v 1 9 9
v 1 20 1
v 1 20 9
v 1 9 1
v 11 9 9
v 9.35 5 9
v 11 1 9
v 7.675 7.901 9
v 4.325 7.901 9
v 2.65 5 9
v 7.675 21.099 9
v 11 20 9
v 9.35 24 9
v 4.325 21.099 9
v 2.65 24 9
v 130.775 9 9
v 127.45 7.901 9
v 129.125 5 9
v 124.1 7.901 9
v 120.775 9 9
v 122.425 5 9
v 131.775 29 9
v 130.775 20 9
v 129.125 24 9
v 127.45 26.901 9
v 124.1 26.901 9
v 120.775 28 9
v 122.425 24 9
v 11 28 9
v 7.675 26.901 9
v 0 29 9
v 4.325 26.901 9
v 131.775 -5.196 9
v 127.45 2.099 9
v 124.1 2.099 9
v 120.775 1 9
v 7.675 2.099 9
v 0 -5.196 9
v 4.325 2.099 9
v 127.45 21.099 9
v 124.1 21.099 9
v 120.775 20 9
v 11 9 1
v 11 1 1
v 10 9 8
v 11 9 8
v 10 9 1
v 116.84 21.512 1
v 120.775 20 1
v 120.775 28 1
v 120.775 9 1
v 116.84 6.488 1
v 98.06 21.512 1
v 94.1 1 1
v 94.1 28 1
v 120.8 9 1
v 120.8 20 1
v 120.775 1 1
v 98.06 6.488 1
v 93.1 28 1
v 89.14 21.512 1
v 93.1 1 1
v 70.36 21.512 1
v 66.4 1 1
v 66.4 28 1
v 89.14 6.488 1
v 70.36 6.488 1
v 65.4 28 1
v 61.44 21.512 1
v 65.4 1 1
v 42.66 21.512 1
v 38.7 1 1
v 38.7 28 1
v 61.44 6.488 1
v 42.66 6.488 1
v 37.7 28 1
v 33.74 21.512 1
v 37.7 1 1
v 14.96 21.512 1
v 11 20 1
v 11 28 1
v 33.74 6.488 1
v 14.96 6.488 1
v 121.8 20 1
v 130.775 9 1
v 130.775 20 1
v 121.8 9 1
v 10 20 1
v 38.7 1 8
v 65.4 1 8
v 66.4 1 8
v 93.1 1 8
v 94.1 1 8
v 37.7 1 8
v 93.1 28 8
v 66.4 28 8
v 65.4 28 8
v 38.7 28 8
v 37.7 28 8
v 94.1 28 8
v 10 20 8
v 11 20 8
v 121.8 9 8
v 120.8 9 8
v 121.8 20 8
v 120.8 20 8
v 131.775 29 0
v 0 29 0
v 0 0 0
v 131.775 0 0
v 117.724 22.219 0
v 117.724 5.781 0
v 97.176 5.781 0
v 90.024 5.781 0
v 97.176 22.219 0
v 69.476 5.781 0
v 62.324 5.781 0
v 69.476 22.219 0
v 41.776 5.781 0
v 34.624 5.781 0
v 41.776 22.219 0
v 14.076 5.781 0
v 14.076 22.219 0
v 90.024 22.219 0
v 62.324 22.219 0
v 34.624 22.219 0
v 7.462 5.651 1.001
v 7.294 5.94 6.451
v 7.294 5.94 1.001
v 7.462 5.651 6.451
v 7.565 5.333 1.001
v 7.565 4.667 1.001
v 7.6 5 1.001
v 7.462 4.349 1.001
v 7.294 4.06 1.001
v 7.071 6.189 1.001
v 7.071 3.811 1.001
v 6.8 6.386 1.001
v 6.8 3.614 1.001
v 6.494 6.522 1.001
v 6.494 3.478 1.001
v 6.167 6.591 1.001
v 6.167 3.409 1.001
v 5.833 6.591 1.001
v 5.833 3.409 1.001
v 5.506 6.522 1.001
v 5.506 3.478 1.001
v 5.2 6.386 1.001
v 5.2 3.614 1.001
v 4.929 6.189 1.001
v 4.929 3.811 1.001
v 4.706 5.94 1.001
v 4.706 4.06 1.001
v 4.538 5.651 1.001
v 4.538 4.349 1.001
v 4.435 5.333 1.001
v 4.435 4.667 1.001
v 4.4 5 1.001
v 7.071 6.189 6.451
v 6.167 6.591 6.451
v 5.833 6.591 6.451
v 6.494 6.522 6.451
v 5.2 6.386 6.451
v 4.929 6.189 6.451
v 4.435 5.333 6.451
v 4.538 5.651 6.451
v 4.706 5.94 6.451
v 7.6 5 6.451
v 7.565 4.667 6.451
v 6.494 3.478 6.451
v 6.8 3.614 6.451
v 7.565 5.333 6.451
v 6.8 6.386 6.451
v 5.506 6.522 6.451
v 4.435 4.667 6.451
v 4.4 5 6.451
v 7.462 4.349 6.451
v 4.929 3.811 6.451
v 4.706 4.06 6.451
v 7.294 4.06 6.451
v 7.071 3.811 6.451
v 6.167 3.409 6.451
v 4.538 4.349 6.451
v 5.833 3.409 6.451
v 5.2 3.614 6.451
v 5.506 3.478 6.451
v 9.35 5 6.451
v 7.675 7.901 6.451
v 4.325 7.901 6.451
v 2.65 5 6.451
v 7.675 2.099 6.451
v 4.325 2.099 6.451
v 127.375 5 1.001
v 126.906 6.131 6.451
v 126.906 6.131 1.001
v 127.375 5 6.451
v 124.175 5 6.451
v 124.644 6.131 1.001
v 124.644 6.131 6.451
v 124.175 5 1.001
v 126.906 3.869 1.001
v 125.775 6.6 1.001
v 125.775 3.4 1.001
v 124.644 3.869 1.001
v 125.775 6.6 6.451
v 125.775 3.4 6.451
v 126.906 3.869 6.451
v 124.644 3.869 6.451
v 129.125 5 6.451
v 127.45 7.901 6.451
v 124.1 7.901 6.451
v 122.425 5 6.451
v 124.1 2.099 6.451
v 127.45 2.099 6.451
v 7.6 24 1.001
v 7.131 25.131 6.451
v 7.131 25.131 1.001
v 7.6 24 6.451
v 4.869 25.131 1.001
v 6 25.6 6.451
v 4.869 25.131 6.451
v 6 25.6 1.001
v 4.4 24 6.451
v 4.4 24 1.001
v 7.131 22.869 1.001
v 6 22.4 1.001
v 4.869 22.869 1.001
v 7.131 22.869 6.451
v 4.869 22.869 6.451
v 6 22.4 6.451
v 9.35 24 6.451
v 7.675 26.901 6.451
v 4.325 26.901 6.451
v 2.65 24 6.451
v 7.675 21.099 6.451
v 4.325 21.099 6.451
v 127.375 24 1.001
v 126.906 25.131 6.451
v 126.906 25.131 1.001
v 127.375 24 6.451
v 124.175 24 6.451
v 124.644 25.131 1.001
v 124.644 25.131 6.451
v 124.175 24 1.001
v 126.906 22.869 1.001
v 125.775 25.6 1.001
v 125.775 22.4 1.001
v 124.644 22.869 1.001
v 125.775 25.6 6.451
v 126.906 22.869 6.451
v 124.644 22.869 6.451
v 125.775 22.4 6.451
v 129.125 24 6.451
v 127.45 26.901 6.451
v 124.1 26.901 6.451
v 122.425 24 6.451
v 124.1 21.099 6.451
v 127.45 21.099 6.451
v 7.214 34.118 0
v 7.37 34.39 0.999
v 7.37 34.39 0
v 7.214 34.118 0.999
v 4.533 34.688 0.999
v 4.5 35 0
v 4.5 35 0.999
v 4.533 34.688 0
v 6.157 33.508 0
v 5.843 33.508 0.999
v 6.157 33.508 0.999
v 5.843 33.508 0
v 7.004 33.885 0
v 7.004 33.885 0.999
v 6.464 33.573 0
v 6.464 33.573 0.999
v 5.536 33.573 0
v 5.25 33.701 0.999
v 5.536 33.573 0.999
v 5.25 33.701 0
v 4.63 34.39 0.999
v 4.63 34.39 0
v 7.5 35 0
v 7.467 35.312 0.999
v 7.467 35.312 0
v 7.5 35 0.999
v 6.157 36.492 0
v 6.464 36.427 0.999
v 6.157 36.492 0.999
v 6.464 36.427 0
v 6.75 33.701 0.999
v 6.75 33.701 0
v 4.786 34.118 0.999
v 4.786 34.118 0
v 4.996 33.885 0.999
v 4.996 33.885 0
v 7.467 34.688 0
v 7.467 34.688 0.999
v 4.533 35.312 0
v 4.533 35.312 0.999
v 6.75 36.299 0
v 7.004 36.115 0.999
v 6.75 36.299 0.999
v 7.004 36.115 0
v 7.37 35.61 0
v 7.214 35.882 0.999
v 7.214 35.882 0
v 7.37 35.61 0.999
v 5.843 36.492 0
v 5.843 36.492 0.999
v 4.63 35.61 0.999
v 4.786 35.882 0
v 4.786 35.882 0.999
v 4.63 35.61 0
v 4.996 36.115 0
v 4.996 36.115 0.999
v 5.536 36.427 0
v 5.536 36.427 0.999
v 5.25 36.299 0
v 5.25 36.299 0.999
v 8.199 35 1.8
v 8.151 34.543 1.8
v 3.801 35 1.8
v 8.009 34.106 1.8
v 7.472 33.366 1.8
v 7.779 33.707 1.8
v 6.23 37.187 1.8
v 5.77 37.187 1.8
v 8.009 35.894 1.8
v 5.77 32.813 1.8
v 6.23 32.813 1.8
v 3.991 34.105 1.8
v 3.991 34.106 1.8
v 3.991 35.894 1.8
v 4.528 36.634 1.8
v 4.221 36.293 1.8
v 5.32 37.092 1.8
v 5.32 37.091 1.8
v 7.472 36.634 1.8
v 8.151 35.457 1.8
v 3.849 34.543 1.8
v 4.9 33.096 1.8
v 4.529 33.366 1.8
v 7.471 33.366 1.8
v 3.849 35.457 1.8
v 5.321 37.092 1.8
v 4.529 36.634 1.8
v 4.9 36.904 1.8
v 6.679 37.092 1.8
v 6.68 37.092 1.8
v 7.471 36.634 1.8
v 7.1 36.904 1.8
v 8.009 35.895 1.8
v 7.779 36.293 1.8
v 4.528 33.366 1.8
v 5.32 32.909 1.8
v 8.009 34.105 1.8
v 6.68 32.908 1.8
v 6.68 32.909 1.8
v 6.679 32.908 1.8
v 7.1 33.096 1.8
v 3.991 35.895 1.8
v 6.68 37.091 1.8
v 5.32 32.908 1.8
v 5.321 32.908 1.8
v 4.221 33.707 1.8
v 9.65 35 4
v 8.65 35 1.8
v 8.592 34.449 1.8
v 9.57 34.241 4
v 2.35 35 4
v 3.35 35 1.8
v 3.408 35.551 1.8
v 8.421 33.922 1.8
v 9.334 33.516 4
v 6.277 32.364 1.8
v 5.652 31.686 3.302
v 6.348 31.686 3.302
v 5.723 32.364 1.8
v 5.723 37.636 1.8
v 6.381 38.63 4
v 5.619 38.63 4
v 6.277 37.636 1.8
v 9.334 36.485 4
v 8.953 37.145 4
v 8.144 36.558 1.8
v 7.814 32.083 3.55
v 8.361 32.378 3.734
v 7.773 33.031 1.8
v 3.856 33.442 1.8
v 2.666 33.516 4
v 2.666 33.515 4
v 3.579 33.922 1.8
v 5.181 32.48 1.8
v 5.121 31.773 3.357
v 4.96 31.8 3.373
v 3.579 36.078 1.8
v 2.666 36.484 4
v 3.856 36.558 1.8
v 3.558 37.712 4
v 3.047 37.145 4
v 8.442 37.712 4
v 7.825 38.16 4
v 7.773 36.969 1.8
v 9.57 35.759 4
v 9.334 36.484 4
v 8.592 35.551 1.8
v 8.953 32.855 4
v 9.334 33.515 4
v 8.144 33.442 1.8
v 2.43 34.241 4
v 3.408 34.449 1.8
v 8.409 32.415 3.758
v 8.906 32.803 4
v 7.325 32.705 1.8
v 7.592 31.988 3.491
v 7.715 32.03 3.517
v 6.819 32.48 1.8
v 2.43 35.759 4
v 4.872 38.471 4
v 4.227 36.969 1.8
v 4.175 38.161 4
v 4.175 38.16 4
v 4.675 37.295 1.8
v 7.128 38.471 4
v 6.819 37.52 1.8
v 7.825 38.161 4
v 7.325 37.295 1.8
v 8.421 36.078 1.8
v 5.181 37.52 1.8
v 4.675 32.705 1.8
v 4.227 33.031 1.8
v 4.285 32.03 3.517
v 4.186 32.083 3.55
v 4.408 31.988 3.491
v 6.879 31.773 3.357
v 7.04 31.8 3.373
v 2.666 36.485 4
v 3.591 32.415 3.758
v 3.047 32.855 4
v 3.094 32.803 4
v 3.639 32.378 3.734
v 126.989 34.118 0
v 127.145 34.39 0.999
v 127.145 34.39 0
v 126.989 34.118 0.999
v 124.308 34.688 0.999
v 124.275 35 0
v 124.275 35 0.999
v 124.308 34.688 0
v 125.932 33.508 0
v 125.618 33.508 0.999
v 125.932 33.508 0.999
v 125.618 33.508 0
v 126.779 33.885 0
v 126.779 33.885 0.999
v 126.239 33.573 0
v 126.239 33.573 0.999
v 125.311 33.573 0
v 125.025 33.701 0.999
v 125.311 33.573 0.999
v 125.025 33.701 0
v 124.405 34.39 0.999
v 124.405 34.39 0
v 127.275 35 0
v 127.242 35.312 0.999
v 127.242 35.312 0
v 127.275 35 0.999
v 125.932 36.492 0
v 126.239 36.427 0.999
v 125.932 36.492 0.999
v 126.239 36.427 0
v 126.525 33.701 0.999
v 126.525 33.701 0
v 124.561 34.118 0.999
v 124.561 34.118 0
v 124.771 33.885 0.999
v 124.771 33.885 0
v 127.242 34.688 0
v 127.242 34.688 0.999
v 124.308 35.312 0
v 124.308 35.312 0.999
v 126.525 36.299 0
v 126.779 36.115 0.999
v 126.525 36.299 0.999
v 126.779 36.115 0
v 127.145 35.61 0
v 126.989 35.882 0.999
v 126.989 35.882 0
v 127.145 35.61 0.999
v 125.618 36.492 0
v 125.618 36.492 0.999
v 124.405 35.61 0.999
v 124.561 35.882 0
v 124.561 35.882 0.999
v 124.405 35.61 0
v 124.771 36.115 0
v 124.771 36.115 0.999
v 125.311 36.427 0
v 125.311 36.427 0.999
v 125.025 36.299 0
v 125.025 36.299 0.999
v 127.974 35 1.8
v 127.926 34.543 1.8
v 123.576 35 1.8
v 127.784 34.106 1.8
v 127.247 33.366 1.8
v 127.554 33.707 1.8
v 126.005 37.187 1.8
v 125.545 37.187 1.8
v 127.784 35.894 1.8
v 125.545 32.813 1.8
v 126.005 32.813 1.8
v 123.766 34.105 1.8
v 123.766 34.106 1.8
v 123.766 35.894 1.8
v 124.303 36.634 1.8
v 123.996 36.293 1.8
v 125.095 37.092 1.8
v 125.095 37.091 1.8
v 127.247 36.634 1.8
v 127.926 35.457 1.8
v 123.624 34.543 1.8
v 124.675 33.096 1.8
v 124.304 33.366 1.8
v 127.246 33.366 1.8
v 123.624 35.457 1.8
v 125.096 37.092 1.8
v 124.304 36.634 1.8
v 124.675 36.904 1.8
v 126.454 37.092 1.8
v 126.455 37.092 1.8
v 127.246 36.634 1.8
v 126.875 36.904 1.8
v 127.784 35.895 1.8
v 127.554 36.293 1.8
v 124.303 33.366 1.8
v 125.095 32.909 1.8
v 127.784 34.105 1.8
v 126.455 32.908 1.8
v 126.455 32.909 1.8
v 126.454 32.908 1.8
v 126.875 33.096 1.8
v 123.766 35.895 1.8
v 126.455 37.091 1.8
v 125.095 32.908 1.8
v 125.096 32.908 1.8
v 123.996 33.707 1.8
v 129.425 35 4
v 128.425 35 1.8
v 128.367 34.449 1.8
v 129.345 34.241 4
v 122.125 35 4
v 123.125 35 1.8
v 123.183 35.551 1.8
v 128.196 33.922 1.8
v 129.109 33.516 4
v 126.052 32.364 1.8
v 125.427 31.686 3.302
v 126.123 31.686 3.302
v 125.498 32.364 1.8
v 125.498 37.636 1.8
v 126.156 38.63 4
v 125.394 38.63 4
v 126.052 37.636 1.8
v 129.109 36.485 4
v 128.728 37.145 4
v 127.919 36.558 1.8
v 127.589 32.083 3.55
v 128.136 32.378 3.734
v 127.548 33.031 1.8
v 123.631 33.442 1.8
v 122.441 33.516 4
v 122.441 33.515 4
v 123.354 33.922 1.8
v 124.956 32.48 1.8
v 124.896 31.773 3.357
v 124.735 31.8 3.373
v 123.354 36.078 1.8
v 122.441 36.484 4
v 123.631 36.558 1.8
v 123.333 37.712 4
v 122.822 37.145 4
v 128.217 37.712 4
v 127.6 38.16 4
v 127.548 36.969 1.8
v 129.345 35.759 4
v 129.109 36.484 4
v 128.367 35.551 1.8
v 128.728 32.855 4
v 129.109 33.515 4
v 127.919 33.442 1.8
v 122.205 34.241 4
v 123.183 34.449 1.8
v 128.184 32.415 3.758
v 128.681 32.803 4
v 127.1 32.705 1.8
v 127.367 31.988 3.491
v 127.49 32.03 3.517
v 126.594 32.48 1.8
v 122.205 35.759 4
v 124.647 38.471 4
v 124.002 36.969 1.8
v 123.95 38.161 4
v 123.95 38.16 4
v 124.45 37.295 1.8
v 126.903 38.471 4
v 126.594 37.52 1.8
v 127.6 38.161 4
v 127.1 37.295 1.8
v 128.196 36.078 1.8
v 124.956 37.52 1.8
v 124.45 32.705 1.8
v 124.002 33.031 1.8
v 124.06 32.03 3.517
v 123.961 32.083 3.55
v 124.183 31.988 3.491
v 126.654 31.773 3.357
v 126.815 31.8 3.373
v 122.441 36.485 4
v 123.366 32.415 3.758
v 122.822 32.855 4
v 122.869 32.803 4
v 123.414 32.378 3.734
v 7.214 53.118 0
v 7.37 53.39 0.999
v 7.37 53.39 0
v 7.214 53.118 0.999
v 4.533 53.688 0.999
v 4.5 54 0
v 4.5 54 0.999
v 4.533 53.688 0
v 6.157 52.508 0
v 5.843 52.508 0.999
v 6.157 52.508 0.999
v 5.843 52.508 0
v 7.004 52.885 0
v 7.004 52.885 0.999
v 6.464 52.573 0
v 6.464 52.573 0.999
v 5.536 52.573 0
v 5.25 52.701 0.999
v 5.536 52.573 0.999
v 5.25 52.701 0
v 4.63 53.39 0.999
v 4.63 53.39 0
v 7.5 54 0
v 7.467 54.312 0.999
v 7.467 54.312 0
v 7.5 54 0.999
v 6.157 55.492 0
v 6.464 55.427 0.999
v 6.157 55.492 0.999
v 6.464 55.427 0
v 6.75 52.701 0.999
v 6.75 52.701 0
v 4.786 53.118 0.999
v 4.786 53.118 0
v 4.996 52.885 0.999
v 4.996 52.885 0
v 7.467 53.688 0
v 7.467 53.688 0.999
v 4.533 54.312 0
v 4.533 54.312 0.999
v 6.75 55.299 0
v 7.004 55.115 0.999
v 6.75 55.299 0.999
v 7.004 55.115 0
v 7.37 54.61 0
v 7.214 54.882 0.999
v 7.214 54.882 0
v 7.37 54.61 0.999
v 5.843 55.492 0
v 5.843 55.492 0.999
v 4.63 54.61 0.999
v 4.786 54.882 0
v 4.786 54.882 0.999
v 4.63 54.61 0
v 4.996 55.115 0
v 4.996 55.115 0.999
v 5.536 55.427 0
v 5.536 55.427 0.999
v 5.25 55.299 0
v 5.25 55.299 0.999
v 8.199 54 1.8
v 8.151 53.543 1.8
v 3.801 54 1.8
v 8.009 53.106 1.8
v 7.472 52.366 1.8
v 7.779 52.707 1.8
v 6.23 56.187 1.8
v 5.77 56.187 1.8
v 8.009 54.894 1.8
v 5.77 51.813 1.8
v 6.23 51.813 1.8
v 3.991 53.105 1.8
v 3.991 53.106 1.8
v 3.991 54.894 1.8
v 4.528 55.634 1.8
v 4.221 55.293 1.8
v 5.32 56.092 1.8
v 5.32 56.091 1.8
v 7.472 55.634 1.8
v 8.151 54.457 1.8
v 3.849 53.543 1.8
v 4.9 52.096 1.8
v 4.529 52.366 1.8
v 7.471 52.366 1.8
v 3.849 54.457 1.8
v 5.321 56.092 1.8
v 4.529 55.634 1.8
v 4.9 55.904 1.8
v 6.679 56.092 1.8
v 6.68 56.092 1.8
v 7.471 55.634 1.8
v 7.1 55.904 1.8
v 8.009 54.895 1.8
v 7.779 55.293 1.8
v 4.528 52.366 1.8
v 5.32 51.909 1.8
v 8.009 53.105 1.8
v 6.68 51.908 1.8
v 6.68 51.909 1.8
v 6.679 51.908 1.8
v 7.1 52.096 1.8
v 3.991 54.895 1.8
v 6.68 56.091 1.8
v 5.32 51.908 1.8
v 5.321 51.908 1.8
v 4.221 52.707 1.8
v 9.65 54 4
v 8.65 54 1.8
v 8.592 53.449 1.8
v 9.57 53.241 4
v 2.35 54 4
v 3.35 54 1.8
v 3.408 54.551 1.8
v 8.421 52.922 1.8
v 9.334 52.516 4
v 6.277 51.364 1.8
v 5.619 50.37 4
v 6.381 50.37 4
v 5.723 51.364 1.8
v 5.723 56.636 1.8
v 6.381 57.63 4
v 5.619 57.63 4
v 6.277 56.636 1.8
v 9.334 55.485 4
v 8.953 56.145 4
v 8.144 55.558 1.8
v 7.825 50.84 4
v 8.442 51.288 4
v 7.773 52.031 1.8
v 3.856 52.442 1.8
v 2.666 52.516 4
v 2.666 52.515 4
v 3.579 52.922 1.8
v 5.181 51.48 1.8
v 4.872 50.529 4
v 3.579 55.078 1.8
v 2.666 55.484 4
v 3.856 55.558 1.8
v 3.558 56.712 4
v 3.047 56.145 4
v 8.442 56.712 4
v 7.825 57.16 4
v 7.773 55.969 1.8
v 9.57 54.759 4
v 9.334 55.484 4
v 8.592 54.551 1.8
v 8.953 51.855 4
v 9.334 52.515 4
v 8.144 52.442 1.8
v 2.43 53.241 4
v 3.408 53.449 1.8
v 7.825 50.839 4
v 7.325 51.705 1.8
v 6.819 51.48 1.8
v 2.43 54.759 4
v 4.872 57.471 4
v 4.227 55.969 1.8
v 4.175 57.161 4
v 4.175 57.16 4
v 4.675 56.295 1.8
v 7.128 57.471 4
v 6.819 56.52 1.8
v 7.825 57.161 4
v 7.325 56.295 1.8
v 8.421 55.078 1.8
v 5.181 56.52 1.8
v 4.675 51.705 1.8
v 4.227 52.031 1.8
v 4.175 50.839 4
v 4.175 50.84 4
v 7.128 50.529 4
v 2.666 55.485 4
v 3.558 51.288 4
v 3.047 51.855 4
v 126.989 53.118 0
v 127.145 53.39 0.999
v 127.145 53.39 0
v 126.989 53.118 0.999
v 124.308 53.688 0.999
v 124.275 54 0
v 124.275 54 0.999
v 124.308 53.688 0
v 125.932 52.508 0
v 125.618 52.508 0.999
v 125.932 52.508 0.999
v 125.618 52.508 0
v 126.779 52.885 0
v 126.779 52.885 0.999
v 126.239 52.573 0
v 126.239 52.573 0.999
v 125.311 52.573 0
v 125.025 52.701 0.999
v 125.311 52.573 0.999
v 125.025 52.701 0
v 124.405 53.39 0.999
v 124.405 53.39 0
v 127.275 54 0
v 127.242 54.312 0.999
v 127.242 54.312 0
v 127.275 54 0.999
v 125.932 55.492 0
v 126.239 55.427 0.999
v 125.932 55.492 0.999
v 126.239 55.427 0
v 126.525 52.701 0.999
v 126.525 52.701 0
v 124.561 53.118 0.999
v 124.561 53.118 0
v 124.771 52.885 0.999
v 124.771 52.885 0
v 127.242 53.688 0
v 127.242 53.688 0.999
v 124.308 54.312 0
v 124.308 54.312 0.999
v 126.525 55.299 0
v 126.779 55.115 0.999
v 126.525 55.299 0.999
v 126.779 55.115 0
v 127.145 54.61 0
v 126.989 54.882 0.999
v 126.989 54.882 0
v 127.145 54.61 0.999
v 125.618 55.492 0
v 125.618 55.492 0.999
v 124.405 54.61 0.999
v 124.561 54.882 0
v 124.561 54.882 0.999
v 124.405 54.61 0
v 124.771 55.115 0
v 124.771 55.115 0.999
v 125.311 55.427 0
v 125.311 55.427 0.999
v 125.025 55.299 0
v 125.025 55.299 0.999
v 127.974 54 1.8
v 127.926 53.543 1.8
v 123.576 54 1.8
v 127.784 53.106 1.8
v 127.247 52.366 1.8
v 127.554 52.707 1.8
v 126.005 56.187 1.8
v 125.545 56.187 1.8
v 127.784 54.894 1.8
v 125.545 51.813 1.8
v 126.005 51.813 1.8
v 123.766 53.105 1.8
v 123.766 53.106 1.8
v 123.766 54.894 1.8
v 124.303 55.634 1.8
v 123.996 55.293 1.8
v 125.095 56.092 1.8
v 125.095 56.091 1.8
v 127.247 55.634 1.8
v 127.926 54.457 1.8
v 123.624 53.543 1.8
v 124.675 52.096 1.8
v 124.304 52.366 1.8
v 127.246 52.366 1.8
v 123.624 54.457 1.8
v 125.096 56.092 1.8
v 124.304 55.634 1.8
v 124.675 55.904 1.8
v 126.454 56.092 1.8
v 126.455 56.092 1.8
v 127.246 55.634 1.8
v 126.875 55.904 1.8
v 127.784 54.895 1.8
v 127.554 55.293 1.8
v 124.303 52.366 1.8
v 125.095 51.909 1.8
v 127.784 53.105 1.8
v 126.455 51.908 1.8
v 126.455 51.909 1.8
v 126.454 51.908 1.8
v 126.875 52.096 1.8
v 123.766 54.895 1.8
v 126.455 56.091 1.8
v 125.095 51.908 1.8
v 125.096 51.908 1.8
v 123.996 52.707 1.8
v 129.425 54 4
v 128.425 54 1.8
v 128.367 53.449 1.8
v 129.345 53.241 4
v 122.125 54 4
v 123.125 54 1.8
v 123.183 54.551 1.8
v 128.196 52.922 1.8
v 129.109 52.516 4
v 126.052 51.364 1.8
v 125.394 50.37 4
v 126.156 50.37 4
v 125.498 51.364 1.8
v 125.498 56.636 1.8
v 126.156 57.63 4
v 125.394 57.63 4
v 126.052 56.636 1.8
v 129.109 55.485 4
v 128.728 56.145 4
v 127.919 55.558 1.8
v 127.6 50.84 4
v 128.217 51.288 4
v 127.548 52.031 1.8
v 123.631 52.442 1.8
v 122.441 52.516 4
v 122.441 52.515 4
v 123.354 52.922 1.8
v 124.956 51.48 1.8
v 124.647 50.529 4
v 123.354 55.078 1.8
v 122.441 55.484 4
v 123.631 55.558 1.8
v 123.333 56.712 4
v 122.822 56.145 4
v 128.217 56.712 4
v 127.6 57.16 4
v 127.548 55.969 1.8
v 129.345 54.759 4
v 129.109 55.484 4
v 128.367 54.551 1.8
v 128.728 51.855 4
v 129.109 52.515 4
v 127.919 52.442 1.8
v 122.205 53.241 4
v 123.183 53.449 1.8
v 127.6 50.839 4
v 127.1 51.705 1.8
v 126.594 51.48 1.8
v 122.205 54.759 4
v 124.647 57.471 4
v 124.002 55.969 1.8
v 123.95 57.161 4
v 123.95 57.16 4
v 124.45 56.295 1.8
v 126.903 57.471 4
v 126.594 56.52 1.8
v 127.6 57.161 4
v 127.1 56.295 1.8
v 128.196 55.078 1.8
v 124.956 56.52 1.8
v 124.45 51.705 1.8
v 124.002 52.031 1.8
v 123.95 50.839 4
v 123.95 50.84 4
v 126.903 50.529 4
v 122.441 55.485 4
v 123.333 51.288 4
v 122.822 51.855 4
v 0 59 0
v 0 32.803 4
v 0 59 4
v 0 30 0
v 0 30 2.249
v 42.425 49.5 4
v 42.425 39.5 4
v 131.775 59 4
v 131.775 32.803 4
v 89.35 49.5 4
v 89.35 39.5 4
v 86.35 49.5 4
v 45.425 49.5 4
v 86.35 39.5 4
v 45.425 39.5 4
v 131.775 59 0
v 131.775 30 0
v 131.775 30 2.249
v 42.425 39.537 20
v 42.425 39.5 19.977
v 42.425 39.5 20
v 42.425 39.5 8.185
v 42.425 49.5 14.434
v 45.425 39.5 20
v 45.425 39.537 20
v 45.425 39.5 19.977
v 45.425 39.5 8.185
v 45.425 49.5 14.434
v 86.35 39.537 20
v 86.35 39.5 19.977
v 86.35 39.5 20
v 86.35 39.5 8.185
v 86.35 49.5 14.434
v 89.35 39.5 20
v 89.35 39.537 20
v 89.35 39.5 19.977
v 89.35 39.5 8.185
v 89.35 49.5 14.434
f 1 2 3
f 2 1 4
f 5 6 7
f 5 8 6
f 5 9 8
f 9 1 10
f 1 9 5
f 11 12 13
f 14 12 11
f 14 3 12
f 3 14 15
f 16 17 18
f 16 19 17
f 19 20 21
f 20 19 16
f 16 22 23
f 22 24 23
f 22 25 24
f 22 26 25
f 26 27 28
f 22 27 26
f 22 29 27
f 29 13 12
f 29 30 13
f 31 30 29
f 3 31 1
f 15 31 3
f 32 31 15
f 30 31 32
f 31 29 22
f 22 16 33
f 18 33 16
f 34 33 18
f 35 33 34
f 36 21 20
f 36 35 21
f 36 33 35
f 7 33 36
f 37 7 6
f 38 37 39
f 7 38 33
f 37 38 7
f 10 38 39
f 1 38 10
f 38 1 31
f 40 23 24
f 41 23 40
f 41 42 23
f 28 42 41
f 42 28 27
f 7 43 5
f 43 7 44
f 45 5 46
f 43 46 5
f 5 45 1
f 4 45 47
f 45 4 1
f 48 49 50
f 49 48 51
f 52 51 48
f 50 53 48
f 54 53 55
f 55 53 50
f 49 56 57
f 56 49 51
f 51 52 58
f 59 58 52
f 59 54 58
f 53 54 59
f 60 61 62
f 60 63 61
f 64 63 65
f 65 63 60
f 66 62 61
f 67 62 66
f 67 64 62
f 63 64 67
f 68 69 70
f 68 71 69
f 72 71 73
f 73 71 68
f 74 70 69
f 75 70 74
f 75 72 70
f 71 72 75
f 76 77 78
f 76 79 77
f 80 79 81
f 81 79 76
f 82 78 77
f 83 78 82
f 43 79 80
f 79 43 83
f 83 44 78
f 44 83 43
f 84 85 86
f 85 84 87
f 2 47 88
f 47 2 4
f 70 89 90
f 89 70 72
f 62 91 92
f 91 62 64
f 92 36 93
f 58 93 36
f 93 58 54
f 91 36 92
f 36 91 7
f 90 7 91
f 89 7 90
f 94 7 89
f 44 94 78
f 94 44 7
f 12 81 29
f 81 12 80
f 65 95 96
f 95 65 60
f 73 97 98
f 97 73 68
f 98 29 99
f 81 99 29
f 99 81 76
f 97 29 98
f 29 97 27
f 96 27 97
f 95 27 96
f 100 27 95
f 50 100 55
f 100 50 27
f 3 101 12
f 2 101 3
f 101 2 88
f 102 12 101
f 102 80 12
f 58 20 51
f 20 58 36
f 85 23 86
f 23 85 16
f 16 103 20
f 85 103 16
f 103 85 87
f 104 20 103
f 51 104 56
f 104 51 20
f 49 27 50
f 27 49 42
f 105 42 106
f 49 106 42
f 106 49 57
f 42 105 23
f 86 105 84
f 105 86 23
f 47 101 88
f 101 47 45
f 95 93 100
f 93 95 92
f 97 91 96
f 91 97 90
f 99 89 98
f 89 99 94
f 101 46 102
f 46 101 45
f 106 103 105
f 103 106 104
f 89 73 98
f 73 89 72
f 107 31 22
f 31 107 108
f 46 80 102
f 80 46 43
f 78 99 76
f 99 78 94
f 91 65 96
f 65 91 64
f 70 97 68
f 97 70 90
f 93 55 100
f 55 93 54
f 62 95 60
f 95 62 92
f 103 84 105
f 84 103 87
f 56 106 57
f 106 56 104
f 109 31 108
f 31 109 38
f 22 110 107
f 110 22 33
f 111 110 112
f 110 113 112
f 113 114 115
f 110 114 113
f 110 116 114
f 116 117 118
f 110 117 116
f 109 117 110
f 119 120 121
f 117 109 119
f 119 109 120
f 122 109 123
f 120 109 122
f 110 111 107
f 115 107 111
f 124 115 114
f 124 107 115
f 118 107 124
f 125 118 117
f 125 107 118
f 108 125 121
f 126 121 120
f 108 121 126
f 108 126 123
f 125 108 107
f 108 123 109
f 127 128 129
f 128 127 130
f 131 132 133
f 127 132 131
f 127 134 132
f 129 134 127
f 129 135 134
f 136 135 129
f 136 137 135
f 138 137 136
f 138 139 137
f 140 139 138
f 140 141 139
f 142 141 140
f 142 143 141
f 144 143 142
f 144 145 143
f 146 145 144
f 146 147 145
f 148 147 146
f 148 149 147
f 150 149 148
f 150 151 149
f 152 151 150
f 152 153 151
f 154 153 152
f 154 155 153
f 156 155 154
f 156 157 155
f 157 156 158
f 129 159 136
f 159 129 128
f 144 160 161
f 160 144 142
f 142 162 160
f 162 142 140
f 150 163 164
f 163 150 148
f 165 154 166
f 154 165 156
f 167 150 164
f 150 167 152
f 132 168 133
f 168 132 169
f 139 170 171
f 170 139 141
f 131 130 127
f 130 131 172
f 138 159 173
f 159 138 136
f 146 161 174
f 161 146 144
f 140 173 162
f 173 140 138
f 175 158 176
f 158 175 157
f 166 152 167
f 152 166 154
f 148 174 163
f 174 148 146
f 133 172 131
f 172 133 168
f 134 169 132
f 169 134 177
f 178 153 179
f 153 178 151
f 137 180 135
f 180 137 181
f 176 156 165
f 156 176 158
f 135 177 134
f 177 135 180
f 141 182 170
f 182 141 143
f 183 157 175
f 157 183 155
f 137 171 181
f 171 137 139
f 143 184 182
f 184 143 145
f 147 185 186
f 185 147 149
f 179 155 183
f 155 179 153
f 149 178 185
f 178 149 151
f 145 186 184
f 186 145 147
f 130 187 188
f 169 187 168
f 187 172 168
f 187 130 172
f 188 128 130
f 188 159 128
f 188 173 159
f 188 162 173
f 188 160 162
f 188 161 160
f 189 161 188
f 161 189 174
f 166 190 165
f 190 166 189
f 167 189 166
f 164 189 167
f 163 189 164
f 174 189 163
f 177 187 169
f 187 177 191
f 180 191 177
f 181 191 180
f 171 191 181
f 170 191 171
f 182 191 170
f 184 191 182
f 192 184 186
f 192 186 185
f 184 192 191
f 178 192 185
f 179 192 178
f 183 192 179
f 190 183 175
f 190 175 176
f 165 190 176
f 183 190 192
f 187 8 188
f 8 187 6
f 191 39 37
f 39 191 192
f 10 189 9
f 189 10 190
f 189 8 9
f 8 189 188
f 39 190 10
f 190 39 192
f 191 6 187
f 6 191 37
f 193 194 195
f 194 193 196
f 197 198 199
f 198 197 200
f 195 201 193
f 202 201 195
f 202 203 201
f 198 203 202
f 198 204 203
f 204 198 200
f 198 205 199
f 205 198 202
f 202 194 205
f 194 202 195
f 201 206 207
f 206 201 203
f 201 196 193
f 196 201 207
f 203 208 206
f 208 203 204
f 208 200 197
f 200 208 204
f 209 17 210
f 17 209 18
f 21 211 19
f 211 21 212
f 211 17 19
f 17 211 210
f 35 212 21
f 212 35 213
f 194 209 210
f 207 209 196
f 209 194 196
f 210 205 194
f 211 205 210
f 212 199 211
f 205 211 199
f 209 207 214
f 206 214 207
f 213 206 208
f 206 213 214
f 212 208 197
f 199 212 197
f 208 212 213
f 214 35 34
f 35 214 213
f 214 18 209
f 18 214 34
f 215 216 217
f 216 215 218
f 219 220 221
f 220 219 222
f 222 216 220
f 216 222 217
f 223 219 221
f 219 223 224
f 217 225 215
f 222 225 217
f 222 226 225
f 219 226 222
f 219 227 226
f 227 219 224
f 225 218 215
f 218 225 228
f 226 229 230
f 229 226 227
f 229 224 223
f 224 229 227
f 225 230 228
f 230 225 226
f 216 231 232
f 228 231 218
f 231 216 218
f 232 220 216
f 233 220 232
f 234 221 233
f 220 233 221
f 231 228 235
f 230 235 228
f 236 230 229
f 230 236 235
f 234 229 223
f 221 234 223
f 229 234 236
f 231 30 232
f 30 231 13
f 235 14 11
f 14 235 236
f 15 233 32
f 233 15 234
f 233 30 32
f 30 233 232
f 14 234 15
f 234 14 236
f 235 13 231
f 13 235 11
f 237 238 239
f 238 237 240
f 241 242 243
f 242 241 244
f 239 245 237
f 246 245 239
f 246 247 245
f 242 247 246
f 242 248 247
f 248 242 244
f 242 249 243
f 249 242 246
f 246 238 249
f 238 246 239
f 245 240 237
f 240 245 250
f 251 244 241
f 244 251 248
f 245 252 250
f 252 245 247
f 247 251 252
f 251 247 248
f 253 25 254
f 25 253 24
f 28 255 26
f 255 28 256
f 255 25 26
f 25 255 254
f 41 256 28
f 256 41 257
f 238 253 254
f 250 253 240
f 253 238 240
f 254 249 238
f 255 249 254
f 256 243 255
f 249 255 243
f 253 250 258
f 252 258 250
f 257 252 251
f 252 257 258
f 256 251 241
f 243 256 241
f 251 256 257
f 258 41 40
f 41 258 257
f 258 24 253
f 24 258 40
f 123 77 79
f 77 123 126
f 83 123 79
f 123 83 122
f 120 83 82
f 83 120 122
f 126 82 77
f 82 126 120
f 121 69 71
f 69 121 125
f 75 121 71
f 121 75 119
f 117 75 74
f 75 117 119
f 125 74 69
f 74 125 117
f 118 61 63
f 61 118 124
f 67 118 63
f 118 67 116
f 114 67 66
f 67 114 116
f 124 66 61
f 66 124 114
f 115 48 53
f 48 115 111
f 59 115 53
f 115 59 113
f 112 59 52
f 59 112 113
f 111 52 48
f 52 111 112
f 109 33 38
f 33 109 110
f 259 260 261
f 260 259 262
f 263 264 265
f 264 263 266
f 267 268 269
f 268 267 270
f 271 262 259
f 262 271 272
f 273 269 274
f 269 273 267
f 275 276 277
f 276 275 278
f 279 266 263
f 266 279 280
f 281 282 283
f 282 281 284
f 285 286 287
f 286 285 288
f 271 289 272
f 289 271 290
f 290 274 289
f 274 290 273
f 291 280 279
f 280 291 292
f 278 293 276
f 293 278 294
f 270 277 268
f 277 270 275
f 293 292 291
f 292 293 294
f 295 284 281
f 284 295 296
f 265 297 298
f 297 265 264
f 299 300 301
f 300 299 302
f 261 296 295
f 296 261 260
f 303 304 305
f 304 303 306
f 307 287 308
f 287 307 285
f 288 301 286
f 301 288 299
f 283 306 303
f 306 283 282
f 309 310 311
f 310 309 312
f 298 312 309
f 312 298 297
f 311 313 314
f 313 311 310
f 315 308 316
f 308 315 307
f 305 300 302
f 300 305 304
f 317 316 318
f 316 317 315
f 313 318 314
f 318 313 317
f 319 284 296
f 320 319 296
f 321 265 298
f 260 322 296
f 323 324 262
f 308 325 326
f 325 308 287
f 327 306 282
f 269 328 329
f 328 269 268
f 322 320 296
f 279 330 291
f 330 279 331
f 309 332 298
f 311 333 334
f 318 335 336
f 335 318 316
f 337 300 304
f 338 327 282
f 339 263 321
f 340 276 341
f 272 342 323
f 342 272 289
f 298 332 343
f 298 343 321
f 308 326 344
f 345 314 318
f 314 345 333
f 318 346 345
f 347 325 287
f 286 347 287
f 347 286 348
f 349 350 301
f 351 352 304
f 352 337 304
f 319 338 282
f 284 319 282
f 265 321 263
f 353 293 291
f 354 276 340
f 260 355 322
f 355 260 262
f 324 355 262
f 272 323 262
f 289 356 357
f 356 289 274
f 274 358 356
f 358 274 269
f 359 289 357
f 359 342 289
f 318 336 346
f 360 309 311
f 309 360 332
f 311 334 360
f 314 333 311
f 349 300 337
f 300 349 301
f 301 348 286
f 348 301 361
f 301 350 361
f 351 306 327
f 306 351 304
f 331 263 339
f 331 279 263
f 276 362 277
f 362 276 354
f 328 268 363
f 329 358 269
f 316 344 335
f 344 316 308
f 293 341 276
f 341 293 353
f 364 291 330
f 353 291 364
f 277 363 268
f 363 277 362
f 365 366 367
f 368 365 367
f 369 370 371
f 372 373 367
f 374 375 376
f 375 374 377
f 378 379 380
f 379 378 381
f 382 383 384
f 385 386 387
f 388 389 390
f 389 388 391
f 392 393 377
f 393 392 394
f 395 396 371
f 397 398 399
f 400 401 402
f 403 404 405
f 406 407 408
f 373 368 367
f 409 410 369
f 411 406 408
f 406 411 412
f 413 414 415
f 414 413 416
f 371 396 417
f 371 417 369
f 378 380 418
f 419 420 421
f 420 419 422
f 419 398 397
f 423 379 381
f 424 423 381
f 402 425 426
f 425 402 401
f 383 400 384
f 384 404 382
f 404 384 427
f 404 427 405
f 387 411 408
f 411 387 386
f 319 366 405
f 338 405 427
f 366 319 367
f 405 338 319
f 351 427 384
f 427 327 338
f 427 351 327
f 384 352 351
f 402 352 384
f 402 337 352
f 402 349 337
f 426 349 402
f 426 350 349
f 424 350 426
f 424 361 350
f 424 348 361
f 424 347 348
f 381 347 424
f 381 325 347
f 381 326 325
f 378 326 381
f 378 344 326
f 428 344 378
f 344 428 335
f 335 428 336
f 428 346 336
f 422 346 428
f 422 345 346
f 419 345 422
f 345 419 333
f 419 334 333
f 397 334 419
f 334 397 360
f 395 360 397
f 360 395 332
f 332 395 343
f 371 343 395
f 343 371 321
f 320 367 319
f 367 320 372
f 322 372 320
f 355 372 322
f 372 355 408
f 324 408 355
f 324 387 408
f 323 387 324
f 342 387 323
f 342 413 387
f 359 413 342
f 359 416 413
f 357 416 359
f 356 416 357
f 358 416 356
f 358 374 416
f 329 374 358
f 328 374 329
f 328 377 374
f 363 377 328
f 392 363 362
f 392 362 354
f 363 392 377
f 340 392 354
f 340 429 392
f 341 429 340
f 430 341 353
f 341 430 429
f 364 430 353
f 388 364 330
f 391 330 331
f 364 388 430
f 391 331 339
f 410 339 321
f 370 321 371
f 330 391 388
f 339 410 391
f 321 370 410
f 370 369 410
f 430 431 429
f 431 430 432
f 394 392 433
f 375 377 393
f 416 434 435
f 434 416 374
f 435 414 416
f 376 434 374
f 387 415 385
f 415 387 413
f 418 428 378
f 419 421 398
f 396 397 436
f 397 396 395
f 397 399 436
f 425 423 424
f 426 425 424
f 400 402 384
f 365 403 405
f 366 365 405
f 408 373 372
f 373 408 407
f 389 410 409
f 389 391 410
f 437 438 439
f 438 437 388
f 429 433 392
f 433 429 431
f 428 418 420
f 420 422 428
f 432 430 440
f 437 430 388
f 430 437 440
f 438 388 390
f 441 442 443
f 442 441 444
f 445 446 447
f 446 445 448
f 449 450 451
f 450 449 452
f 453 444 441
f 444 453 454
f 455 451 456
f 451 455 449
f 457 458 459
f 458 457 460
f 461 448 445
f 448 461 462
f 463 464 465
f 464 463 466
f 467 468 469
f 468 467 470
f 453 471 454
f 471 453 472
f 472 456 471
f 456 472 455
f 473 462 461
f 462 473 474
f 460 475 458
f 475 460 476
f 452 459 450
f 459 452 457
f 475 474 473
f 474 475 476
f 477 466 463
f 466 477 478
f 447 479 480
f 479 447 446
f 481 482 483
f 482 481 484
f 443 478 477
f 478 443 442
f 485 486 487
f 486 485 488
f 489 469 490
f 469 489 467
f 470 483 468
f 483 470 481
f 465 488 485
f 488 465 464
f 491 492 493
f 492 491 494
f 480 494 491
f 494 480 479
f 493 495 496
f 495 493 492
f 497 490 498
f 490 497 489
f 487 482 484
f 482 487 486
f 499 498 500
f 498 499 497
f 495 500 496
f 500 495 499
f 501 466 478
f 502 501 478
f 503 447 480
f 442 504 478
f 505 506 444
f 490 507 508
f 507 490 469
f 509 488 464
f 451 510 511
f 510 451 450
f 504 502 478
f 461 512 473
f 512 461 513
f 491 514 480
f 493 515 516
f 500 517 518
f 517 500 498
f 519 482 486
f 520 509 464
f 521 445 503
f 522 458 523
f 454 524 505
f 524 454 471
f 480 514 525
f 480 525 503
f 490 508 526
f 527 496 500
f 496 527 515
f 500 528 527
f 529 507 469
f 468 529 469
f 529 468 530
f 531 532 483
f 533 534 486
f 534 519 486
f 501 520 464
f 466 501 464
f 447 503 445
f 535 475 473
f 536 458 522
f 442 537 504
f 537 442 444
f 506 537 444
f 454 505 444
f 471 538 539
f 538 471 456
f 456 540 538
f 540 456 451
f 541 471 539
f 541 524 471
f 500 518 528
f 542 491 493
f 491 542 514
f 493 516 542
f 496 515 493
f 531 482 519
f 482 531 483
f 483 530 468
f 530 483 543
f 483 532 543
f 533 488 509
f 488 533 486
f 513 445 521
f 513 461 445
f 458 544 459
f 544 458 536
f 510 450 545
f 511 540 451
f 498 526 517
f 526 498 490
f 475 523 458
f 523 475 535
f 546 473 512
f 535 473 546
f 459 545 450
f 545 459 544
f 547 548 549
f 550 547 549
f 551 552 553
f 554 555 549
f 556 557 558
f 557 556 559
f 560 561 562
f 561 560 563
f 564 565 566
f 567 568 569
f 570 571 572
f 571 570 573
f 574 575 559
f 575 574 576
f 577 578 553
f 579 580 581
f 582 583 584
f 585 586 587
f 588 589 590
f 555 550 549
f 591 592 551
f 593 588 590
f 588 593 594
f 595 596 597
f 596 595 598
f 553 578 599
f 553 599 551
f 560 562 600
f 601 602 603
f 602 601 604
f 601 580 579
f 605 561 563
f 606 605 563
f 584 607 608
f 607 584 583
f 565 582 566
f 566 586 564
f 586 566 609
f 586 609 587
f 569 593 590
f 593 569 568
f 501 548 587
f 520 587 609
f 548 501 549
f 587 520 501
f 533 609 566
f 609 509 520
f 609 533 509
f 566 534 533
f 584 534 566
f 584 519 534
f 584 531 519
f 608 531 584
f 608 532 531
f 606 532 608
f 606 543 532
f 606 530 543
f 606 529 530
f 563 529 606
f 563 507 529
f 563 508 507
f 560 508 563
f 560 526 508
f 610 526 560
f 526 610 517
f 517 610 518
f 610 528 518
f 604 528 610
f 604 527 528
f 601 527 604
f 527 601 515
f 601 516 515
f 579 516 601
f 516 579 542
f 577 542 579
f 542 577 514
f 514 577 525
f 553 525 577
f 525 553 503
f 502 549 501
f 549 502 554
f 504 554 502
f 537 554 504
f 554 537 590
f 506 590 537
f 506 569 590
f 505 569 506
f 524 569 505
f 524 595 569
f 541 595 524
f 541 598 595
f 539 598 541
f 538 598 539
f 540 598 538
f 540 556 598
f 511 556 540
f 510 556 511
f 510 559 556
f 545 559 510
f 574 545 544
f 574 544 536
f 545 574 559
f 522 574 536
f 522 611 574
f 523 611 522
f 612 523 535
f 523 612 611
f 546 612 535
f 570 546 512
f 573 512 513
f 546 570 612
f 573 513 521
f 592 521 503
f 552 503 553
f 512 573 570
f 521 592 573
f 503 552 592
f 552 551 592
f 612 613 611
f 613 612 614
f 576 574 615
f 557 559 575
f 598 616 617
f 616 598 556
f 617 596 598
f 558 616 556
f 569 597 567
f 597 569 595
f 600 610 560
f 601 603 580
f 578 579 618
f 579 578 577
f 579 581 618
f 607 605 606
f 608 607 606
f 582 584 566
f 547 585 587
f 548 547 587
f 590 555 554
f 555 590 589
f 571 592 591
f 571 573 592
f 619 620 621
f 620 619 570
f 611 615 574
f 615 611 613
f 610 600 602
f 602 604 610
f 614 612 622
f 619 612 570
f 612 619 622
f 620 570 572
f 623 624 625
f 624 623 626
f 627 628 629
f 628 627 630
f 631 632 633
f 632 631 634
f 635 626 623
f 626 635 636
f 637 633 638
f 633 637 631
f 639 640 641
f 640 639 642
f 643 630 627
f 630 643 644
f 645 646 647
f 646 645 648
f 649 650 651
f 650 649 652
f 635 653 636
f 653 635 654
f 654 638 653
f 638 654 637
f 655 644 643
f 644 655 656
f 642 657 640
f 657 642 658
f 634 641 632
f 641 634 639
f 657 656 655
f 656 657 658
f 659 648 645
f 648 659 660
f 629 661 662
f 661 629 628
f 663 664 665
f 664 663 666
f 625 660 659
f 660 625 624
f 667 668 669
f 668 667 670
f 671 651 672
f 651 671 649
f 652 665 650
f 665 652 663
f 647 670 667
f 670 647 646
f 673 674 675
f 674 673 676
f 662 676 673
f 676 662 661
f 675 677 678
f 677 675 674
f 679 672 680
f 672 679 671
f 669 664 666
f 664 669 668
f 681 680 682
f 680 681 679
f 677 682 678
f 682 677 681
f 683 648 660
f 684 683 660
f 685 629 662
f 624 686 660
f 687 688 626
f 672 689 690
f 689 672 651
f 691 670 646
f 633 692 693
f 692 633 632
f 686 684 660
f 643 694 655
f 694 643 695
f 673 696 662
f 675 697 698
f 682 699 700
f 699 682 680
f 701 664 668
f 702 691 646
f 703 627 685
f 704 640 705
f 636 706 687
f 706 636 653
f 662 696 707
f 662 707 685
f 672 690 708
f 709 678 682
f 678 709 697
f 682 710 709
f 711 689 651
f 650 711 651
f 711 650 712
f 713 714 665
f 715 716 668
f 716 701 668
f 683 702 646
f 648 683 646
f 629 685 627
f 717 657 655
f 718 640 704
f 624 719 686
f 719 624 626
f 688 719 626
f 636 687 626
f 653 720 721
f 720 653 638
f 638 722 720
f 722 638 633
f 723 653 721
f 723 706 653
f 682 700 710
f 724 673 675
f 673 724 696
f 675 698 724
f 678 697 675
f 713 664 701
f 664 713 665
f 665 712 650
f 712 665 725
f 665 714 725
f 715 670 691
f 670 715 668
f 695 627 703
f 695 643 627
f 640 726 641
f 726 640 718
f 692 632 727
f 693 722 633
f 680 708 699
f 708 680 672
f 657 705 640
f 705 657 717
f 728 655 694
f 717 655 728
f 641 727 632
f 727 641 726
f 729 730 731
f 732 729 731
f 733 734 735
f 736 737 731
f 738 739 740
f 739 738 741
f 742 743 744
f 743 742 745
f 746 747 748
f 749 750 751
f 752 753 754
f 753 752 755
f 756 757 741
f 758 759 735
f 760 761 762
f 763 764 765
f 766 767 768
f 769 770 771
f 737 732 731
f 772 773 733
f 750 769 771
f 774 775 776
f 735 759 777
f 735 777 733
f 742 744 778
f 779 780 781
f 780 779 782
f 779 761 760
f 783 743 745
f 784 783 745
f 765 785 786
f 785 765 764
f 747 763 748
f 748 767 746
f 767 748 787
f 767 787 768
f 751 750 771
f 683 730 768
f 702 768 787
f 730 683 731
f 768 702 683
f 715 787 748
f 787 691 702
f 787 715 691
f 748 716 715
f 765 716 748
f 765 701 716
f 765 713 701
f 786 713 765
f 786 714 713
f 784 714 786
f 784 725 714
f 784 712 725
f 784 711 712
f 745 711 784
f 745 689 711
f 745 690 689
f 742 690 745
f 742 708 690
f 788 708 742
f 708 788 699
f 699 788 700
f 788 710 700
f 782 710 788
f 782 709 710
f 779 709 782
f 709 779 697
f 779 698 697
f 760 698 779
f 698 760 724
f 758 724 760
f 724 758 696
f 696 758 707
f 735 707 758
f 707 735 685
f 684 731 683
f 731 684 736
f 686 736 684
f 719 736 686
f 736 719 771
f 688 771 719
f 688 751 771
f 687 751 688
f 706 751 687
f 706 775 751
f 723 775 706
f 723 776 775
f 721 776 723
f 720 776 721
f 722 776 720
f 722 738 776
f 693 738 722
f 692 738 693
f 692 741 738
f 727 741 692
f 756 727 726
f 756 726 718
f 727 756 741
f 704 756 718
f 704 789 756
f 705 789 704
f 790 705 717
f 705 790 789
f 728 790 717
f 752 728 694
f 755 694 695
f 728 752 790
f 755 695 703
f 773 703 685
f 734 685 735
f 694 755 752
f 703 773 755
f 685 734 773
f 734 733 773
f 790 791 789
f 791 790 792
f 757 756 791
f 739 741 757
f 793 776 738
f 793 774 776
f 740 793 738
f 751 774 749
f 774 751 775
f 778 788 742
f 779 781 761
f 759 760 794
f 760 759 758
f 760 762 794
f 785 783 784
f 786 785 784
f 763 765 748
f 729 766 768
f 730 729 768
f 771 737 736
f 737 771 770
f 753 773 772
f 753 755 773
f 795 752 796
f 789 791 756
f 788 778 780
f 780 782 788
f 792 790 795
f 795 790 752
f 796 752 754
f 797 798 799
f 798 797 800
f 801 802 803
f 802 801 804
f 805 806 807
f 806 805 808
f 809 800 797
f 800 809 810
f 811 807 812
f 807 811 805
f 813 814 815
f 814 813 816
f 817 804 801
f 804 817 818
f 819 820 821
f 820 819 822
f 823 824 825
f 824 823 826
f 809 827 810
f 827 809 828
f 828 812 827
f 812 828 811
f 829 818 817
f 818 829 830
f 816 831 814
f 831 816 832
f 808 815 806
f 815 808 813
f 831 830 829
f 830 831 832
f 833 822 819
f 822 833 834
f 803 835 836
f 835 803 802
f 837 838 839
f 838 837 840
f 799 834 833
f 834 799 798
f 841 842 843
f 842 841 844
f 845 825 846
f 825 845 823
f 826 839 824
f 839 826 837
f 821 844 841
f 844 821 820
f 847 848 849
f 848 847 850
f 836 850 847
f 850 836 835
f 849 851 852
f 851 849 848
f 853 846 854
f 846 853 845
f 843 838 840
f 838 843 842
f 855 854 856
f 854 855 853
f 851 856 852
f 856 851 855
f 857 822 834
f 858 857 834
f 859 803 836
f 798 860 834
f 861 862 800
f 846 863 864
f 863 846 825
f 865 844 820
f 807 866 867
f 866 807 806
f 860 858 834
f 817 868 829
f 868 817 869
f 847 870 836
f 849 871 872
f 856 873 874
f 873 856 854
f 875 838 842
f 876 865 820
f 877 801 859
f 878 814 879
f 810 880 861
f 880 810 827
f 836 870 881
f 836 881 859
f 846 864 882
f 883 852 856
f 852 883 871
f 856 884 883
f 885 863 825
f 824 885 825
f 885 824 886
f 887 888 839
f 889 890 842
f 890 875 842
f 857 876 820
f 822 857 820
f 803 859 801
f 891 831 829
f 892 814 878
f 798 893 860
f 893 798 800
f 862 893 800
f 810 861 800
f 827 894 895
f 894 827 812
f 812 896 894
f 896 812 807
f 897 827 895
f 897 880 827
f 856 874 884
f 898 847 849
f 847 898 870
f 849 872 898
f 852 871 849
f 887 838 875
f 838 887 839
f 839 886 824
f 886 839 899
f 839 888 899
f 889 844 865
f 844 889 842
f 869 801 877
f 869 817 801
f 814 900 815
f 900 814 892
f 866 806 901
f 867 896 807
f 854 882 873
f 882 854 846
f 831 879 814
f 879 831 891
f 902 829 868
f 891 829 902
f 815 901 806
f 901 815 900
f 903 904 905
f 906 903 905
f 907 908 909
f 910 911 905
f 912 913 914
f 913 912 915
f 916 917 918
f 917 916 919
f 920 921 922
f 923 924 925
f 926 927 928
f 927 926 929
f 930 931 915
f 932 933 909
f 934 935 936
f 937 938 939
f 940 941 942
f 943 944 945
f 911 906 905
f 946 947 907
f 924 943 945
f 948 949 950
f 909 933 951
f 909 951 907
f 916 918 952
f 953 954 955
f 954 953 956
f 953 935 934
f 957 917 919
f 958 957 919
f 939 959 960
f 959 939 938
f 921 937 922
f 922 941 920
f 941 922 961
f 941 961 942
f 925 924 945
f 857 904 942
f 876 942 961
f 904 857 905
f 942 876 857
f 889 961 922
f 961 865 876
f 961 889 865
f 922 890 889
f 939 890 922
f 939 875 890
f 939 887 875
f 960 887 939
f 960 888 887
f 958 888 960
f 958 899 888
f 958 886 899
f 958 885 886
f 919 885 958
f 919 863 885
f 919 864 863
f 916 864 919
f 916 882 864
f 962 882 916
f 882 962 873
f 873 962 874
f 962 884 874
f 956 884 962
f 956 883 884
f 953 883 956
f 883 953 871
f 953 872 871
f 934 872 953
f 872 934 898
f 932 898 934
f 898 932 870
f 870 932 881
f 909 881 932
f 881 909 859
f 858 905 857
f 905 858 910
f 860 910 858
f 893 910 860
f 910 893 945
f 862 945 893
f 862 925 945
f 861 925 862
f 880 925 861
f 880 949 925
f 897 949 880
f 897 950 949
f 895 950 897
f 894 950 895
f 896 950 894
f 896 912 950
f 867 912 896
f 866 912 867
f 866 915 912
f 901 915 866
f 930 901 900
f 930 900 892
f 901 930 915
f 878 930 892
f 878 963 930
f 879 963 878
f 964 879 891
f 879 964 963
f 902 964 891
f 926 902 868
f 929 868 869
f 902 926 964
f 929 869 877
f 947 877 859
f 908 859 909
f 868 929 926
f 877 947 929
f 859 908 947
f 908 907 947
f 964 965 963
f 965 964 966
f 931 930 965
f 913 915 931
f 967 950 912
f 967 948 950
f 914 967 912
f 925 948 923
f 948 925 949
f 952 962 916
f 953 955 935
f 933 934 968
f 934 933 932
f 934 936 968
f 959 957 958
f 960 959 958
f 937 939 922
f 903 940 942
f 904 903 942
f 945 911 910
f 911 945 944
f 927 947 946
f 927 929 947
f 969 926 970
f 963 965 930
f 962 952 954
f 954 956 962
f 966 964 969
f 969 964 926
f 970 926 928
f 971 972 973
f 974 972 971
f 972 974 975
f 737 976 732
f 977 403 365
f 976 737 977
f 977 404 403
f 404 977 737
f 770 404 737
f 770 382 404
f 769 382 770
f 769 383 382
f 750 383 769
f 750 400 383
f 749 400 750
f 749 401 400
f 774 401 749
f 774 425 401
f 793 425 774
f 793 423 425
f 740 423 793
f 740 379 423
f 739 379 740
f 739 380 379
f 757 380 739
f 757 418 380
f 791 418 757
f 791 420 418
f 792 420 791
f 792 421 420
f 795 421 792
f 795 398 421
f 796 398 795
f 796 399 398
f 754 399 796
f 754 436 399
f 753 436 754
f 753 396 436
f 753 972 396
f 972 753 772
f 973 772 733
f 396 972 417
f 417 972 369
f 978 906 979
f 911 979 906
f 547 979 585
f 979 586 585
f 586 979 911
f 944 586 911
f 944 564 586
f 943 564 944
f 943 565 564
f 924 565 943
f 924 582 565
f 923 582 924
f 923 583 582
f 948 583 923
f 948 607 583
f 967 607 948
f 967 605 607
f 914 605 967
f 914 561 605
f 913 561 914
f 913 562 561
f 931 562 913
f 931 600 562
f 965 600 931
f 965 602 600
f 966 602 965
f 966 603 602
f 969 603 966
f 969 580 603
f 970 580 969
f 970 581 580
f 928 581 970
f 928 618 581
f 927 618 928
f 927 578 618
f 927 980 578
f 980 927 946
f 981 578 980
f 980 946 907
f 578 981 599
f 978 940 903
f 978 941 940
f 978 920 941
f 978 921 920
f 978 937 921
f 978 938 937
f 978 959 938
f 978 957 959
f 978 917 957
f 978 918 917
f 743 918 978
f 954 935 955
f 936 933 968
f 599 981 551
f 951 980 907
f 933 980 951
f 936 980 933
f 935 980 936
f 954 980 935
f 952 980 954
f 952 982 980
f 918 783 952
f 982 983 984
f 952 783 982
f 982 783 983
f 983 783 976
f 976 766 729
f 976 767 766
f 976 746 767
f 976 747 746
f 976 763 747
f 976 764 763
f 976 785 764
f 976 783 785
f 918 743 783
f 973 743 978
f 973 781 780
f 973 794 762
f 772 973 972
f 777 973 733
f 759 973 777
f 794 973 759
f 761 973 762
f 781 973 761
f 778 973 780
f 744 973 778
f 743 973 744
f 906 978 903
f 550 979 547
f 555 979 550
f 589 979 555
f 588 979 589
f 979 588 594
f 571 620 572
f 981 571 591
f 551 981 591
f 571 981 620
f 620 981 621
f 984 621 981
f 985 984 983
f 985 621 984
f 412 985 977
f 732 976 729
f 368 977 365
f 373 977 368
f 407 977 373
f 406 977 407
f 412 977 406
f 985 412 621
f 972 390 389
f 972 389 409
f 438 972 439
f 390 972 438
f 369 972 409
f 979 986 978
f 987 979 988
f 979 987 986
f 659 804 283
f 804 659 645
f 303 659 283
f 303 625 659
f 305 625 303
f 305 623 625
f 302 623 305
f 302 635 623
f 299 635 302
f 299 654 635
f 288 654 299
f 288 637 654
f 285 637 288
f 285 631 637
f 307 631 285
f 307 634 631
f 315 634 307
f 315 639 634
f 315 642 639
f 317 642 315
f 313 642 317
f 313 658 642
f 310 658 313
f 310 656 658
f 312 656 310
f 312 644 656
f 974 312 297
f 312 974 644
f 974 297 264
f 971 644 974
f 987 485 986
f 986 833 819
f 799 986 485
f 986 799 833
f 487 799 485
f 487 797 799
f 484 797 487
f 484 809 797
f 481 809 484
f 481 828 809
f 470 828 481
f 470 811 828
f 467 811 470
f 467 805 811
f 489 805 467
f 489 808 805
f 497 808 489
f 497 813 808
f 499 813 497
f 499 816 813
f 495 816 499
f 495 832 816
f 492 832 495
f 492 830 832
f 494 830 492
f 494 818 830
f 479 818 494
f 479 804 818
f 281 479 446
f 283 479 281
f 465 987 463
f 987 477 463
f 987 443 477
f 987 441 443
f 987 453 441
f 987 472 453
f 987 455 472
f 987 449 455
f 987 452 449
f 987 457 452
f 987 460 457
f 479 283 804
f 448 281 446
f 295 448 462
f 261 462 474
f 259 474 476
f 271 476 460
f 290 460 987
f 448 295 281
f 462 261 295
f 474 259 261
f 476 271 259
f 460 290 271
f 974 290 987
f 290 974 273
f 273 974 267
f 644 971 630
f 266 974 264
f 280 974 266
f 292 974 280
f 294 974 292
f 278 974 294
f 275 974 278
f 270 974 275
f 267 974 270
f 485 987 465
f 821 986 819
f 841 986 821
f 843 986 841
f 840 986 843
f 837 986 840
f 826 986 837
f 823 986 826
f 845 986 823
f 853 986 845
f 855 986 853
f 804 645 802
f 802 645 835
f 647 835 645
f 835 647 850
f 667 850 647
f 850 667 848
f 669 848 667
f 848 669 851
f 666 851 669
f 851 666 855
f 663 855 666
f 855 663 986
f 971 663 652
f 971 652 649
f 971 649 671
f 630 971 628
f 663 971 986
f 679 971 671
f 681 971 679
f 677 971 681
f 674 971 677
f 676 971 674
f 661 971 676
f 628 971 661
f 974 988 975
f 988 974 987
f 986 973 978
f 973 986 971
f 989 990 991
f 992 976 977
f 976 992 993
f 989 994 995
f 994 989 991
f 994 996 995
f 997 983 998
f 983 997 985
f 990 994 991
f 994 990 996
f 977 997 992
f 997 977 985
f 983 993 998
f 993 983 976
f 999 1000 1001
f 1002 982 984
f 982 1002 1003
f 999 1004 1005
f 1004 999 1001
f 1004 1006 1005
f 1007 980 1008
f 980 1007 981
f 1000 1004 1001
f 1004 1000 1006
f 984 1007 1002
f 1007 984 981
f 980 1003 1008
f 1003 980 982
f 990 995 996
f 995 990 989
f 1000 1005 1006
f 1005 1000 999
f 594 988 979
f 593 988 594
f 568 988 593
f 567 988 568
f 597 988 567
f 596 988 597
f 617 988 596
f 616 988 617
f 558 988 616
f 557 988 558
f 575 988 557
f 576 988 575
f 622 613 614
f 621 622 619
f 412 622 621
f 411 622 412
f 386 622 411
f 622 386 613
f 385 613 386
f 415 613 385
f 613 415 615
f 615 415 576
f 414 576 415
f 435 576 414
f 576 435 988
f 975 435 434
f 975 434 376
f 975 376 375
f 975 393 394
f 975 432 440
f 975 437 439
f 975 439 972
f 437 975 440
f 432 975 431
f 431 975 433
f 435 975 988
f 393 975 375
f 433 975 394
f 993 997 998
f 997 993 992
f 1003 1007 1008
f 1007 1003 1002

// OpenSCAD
//
// ktWORLDCLOCK
//
//


gap1 = 0.001;
gap2 = 0.002;

panel_thick = 1;

lcd_w = 18.75;
lcd_h = 15.00;
lcd_slope = 0.775;
watch_w = 26.7;
watch_h = 27.0;
watch_d = 7.0;
diff_w = -(watch_w-lcd_w)/2;
diff_h = -(watch_h-lcd_h)/2+0.5;

base_x = 10;
base_y = 8;

front_x = 10-diff_w+2/2+watch_w*4+10;
front_y = watch_h+2;
front_z = watch_d+1;
rear_z = 3+panel_thick;


A = 1;
B = 1;



if( A )
{
    difference()
    {
        union()
        {
            //color( "Black" )
            {
                cube( [front_x, front_y, panel_thick] );
                wall_x( 0, 0, 0, front_z );
                wall_x( 0, front_y-panel_thick, 0, front_z );
                wall_y( 0, 0, 0, front_z );
                wall_y( front_x-panel_thick, 0, 0, front_z );
                board_base( 0, 0, 0 );        

                watch_case( 10-diff_w+2/2+(watch_w+2/2)*0, -diff_h+2/2 );
                watch_case( 10-diff_w+2/2+(watch_w+2/2)*1, -diff_h+2/2 );
                watch_case( 10-diff_w+2/2+(watch_w+2/2)*2, -diff_h+2/2 );
                watch_case( 10-diff_w+2/2+(watch_w+2/2)*3, -diff_h+2/2 );
            
                translate( [0, -5-1, 0] )
                cube( [front_x, 5+1, front_z+panel_thick] );
            }
        }
    
        //dell
        board_hole( 0, 0, front_z+panel_thick);
        lcd_window( 10-diff_w+2/2+(watch_w+2/2)*0, -diff_h+2/2 );
        lcd_window( 10-diff_w+2/2+(watch_w+2/2)*1, -diff_h+2/2 );
        lcd_window( 10-diff_w+2/2+(watch_w+2/2)*2, -diff_h+2/2 );
        lcd_window( 10-diff_w+2/2+(watch_w+2/2)*3, -diff_h+2/2 );
        
        deg = 30;
        translate( [0-gap1, -5, -5*tan(deg)] )
        rotate( [deg, 0, 0] )
        cube( [front_x+gap2, 5/cos(deg), front_z*2] );

    }
}

if( B )
{
translate( [0, 30, 0] )
//translate( [0, 0, front_z+panel_thick] )
{
    difference()
    {
        union()
        {
            //color( "Black" )
            {
                //base
                cube( [front_x, front_y, rear_z] );
                //stand
                translate( [front_x/3-3/2, front_y/2-10/2, 0] )
                cube( [3, 10, 20] );
                translate( [front_x/3*2-3/2, front_y/2-10/2, 0] )
                cube( [3, 10, 20] );
            }
        }
        rear_screw_hole( base_x/2+panel_thick, base_y/2+panel_thick );
        rear_screw_hole( front_x-base_x/2-panel_thick, base_y/2+panel_thick );
        rear_screw_hole( base_x/2+panel_thick, front_y-base_y/2-panel_thick );
        rear_screw_hole( front_x-base_x/2-panel_thick, front_y-base_y/2-panel_thick );
        
        //del
        translate( [0-gap1, -10, -4] )
        rotate( [32, 0, 0] )
        cube( [front_x+gap2, front_y*2, 10] );
    }
}
}


module wall_x( x, y, z, h )
{
    translate( [x, y, z+panel_thick] )
    cube( [front_x, panel_thick, h] );
}

module wall_y( x, y, z, h )
{
    translate( [x, y, z+panel_thick] )
    cube( [panel_thick, front_y, h] );
}

module board_base( x, y, z=0 )
{
    translate( [x, y, z] )
    {
            translate( [panel_thick, panel_thick, panel_thick] )
            cube( [base_x, base_y, front_z] );
            translate( [panel_thick, front_y-panel_thick-base_y, panel_thick] )
            cube( [base_x, base_y, front_z] );
            translate( [front_x-panel_thick-10, panel_thick, panel_thick] )
            cube( [base_x, base_y, front_z] );
            translate( [front_x-panel_thick-10, front_y-panel_thick-base_y, panel_thick] )
            cube( [base_x, base_y, front_z] );
    }
}
module board_hole( x, y, z=0 )
{
    hole_z = 8;
    translate( [x, y, z+gap1] ){
        translate( [base_x/2+panel_thick, base_y/2+panel_thick, -hole_z] )
        cylinder( hole_z, 1.6, 1.6, $fn=30 );
        translate( [base_x/2+panel_thick, base_y/2+panel_thick, -(2.4+0.15)] )
        cylinder( 2.4+0.15, 6.5/2+0.1, 6.5/2+0.1, $fn=6 );
        translate( [front_x-base_x/2-panel_thick, base_y/2+panel_thick, -hole_z] )
        cylinder( hole_z, 1.6, 1.6, $fn=8 );
        translate( [front_x-base_x/2-panel_thick, base_y/2+panel_thick, -(2.4+0.15)] )
        cylinder( 2.4+0.15, 6.5/2+0.1, 6.5/2+0.1, $fn=6 );
        translate( [base_x/2+panel_thick, front_y-base_y/2-panel_thick, -hole_z] )
        cylinder( hole_z, 1.6, 1.6, $fn=8 );
        translate( [base_x/2+panel_thick, front_y-base_y/2-panel_thick, -(2.4+0.15)] )
        cylinder( 2.4+0.15, 6.5/2+0.1, 6.5/2+0.1, $fn=6 );
        translate( [front_x-base_x/2-panel_thick, front_y-base_y/2-panel_thick, -hole_z] )
        cylinder( hole_z, 1.6, 1.6, $fn=8 );
        translate( [front_x-base_x/2-panel_thick, front_y-base_y/2-panel_thick, -(2.4+0.15)] )
        cylinder( 2.4+0.15, 6.5/2+0.1, 6.5/2+0.1, $fn=6 );
    }
}

module rear_screw_hole( x, y, z=0 )
{
    translate( [x, y, z+4] )
    rotate( [180, 0, 0] )
    {
        translate( [0, 0, 3] )
        cylinder( 5, 1.5, 1.5, $fn=30 );
        translate( [0, 0, 2.2-gap1] )
        cylinder( 0.8+gap2, 1.5+0.7, 1.5, $fn=30 );
        translate( [0, 0, -gap1] )
        cylinder( 2.2+gap1, 3.25+0.4, 3.25-0.6, $fn=30 );
    }
}


module lcd_window( x, y, z=0 )
{
    translate( [x, y, z-gap1] )
    cube( [lcd_w, lcd_h, panel_thick+gap2] );
    translate( [x+lcd_w/2, y+lcd_h/2, z-gap1] )
    scale( [lcd_w*lcd_slope, lcd_h*lcd_slope, lcd_h*lcd_slope] )
    rotate( [0, 0, 45] )
    cylinder( 1, 1, 0, $fn=4 );
}

module watch_case( x, y, z=panel_thick )
{
    translate( [diff_w, diff_h, 0] ) difference()
    {
    translate( [x-1, y-1, z] )
    cube( [watch_w+2, watch_h+2, watch_d] );
    translate( [x, y, z-gap1] )
    cube( [watch_w, watch_h, watch_d+gap2] );
    }
}
